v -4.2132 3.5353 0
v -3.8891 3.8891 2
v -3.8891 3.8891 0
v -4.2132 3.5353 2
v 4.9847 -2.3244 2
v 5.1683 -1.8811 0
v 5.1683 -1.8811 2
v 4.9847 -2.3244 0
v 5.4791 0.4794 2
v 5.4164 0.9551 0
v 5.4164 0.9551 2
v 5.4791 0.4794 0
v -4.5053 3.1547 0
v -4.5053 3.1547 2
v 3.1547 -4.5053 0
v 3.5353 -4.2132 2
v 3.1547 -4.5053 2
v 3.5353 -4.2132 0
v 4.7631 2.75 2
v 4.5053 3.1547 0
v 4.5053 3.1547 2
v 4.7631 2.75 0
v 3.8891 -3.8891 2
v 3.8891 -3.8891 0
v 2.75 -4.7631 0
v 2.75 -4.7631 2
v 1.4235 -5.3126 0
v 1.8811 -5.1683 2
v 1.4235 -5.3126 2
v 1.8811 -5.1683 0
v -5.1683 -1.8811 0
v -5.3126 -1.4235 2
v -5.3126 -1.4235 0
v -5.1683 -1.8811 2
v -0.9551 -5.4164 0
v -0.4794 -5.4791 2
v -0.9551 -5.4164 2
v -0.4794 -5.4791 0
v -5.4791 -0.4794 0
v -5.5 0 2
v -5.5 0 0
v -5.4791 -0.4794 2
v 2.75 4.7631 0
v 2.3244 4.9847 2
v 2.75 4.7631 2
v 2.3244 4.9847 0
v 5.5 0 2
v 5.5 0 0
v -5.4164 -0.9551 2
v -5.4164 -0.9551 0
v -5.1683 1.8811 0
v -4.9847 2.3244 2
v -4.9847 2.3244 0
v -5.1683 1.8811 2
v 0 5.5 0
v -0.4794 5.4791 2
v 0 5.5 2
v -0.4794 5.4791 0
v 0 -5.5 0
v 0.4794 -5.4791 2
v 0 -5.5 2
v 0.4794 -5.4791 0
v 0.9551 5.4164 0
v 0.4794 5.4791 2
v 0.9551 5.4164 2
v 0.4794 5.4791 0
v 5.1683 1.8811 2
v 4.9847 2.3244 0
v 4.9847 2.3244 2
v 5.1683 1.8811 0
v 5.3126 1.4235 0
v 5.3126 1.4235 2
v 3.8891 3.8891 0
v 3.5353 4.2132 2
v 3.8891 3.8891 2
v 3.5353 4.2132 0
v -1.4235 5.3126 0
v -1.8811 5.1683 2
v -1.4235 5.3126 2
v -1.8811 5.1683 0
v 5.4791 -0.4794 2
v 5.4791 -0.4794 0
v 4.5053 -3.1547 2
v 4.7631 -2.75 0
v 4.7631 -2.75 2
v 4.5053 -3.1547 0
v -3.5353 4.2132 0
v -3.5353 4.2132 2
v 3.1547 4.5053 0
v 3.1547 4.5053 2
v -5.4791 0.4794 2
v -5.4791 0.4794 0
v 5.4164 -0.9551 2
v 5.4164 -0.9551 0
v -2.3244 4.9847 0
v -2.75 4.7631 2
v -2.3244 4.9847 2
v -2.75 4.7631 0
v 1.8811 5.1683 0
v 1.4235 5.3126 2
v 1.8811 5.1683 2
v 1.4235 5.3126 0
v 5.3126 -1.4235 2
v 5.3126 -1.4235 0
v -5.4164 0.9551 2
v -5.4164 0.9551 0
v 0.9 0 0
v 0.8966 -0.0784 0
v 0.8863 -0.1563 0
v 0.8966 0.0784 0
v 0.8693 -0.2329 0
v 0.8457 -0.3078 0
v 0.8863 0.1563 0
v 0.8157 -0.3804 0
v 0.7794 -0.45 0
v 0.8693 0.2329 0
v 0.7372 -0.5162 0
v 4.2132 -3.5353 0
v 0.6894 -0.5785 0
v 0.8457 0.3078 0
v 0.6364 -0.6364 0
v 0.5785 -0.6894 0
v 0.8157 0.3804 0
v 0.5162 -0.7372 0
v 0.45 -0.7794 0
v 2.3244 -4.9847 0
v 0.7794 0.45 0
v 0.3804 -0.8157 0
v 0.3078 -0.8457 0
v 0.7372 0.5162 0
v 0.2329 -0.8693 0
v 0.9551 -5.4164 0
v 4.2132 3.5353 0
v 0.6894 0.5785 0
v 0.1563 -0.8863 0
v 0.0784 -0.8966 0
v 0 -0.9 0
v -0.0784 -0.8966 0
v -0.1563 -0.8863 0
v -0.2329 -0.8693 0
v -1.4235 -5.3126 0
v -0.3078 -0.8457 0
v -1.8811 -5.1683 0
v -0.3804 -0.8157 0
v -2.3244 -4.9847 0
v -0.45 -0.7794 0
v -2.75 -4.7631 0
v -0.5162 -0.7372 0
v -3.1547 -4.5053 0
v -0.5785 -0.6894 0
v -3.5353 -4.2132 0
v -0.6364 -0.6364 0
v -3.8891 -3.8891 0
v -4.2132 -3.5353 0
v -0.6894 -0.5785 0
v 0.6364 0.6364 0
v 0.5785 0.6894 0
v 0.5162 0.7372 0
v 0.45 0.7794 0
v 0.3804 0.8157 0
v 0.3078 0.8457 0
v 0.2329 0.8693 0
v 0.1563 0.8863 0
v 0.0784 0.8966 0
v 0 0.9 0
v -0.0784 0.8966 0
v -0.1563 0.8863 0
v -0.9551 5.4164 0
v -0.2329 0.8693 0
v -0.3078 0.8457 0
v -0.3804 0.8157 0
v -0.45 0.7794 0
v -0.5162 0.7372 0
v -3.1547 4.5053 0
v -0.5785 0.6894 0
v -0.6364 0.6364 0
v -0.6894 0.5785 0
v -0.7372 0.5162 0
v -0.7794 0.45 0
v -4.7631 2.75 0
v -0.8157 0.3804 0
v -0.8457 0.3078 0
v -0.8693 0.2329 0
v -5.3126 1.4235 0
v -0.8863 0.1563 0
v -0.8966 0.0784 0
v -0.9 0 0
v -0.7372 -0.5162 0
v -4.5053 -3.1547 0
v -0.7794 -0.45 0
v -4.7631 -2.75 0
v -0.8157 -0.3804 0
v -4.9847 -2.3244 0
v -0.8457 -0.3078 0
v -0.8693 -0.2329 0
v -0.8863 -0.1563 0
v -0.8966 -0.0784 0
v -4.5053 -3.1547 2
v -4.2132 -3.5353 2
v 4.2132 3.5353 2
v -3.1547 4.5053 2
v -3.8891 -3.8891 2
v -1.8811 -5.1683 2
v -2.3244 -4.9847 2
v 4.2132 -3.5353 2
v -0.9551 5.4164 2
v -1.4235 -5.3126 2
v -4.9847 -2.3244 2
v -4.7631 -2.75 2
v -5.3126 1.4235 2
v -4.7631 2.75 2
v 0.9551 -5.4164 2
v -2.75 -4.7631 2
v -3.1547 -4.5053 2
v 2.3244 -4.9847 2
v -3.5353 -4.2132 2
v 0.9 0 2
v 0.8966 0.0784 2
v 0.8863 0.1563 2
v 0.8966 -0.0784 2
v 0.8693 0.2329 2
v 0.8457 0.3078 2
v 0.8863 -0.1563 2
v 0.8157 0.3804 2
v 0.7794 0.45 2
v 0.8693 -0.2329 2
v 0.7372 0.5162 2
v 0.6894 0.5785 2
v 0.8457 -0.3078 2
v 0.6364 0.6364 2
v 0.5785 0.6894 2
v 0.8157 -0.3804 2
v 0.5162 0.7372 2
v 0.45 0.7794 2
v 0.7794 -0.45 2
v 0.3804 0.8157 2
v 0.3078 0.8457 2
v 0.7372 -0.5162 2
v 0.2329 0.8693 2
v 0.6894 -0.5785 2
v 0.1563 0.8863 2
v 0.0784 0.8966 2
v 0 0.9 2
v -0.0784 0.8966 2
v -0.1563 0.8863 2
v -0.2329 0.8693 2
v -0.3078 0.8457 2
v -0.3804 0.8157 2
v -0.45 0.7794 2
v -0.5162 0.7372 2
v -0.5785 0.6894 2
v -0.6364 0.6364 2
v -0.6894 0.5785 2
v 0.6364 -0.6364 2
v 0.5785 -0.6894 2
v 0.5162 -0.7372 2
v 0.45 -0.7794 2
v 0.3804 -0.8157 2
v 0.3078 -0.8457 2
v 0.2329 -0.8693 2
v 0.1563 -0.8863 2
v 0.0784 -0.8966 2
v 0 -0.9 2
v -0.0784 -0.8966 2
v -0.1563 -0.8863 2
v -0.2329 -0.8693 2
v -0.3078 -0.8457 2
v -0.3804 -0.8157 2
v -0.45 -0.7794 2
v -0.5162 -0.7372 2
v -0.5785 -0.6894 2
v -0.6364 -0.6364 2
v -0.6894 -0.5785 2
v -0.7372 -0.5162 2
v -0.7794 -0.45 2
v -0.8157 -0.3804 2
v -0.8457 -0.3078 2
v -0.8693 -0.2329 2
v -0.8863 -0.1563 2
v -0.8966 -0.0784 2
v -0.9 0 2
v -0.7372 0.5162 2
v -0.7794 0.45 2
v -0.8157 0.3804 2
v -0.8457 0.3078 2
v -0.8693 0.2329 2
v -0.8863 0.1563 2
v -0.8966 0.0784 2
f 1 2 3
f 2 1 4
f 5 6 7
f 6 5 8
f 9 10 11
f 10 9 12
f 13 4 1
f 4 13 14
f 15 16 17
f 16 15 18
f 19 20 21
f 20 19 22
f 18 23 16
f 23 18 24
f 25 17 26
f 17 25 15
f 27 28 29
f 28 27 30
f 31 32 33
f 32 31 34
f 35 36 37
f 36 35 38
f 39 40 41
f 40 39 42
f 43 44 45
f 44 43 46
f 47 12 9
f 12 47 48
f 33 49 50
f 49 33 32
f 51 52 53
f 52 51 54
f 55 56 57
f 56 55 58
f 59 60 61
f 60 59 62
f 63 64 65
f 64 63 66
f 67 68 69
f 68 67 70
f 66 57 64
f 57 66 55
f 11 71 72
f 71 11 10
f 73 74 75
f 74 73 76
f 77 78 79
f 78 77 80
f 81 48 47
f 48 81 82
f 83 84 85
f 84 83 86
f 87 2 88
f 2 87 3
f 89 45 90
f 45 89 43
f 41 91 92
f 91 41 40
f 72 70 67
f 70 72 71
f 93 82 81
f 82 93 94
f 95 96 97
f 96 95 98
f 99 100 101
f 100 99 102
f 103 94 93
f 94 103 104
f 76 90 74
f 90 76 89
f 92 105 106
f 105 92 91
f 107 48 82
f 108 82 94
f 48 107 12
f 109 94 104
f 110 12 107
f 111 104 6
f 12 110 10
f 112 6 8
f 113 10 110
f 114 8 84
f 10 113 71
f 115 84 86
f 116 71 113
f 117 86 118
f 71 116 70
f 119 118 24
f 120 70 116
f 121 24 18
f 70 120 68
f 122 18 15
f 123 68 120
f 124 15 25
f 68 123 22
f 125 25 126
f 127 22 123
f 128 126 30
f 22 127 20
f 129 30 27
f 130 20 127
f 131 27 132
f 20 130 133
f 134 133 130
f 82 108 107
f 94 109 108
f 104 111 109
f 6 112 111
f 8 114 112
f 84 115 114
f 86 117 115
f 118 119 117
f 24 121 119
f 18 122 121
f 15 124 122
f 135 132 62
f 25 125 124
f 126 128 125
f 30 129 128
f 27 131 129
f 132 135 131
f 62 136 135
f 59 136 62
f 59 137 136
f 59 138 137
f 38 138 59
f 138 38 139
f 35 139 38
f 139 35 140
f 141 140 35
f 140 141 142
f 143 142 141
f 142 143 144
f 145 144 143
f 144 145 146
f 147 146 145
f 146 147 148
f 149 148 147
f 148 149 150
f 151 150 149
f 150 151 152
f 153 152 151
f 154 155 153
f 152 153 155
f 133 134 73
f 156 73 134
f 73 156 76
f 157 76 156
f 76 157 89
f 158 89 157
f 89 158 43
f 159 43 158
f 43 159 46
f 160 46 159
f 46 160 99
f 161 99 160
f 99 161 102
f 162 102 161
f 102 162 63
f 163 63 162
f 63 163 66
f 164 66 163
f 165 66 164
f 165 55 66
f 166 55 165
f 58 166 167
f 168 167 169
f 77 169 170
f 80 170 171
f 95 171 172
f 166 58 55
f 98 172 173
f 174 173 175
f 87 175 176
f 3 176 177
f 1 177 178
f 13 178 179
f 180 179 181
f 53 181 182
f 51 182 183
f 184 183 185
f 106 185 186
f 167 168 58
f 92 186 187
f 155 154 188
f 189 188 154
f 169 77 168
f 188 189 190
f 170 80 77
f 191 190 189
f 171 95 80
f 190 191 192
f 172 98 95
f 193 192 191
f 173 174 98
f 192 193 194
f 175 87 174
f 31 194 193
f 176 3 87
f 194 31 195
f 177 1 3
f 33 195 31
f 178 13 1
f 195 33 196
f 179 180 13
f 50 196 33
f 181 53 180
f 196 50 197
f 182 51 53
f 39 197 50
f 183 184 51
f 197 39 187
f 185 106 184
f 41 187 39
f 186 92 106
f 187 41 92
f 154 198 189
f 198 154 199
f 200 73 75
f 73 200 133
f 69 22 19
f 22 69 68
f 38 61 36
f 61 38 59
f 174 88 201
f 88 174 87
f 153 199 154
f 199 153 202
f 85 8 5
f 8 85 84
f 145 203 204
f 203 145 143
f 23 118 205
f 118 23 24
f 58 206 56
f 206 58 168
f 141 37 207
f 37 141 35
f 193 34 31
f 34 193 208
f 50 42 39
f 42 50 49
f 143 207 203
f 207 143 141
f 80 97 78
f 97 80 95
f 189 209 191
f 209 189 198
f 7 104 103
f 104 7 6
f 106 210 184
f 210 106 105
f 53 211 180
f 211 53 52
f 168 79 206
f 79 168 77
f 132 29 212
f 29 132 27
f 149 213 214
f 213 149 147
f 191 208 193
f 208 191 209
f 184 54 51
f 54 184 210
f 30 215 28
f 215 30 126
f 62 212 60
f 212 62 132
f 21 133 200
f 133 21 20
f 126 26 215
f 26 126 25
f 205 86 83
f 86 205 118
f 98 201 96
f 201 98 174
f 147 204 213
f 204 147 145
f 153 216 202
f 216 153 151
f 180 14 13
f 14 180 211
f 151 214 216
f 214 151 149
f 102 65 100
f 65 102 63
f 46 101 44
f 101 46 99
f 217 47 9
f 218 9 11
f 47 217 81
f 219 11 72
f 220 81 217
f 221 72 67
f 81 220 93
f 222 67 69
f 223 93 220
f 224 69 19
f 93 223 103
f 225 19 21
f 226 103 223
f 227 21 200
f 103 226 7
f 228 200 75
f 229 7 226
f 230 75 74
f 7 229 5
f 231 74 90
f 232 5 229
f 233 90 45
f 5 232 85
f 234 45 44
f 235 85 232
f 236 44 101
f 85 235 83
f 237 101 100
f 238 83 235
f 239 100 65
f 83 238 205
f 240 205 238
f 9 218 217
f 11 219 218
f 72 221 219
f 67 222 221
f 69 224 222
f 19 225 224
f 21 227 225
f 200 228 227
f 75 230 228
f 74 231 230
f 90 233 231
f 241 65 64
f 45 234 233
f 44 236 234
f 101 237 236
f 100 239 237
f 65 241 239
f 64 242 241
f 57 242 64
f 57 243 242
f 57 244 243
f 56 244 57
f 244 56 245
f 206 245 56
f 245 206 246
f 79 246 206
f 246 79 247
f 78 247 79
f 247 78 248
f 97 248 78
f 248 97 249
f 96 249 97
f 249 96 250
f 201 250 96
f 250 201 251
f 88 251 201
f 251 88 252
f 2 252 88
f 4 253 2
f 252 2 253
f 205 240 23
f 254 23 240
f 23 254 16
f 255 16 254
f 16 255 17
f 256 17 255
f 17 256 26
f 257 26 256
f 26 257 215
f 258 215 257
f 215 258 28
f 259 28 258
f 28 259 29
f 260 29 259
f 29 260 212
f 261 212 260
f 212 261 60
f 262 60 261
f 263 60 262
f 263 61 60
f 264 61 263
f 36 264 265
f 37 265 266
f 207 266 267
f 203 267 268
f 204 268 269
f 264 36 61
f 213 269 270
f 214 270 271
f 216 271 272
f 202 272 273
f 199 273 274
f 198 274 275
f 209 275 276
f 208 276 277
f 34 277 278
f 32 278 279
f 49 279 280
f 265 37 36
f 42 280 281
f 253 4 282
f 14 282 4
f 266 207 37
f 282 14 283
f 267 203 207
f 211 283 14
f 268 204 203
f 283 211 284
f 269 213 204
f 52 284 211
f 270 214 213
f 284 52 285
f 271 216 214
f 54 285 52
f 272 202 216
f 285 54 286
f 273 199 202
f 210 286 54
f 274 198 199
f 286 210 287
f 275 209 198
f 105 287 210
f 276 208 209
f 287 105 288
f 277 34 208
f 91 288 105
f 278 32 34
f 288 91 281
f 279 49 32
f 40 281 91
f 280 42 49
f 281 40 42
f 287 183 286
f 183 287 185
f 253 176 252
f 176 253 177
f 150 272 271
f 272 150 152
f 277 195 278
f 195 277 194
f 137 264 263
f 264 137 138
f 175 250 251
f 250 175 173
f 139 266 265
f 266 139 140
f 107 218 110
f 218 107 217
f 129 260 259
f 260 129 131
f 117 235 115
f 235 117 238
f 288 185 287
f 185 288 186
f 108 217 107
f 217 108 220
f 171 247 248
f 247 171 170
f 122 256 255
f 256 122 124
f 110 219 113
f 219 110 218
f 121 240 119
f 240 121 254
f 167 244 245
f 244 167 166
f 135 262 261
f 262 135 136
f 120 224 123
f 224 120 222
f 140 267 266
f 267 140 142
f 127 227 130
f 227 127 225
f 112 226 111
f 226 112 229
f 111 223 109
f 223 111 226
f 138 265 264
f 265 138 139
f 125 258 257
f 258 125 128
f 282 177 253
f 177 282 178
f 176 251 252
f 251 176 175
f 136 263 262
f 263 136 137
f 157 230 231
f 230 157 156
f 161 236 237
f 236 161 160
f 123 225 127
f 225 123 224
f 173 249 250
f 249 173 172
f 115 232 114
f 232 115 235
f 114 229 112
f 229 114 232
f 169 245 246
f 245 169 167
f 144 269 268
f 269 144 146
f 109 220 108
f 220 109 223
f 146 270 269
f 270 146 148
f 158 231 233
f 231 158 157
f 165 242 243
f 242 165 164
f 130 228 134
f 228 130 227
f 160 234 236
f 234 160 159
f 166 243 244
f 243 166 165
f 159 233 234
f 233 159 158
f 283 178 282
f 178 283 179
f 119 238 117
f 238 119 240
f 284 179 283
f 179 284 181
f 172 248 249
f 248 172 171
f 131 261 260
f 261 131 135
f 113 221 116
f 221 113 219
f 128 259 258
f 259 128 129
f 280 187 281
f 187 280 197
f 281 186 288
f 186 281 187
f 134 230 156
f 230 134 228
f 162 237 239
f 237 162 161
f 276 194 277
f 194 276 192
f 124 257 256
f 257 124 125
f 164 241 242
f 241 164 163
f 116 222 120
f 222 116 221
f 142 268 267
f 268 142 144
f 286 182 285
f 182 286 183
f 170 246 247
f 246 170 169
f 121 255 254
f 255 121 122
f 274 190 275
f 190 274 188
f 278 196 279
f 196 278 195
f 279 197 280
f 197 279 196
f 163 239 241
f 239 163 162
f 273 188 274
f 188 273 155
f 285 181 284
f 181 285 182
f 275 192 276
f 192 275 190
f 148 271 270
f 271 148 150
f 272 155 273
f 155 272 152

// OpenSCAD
// file: woli_config.scad
// ============================================================
// WOLI V1.1 AUDITED FINAL — MASTER PARAMETERS
// Units: mm
// ============================================================

$fn = 72;

// ---------- GLOBAL ----------
fit_clearance = 0.40;
wall = 3.0;
floor_t = 5.0;
cover_t = 2.8;
shell_r = 10.0;

m3_clear = 3.4;
m3_pilot_d = 2.8;
m3_pilot_depth = 4.2;

tie_slot_w = 3.8;
tie_slot_l = 18;

// ---------- BODY ----------
body_w = 170;
body_l = 90;
chassis_h = 31;
top_h = 34;

top_upper_w = 162;
top_upper_l = 80;
top_upper_r = 9;

// ---------- N20 DRIVE ----------
wheel_d = 43;
wheel_w = 17.5;

n20_x = 12;
n20_y = 33;
n20_z = 10;

n20_bracket_x = 25;
n20_bracket_y = 8.5;
n20_bracket_z = 11.5;
n20_bracket_hole_cc = 17;      // approx; slots absorb error

wheel_axis_ground_z = wheel_d/2; // reference only; actual chassis ground plane requires hardware check
wheel_opening_l = 25;            // side wheel cutout depth (Y), mm
motor_y = -body_l/2 + body_l/3;  // wheel center: 1/3 body depth in from front (-Y)
motor_slot_len = 8;
motor_bracket_zone_x = body_w/2 - 18;

// ---------- BALL CASTER ----------
caster_w = 22;
caster_l = 17;
caster_h = 15;
caster_ball_d_visual_ref = 11.5; // photo-only reference; not used for fit
caster_dock_y = body_l/2 - 21;

caster_body_clear = 0.7;
caster_retainer_t = 3.0;
caster_retainer_screw_cc = 27;

caster_mount_x = 15;
caster_mount_y = 12;
caster_floor_open = 18.5;

// ---------- MAIN PCB ----------
pcb_w = 50;
pcb_l = 70;
pcb_stack_h = 15;

pcb_tray_w = 56;
pcb_tray_l = 76;
pcb_mount_cc_x = 44;
pcb_mount_cc_y = 64;

// ---------- MG90S ----------
servo_a = 32.4;
servo_b = 32.5;
servo_c = 12;
servo_fit = 0.7;

// ---------- LIMIT SWITCH ----------
limit_w = 21;
limit_l = 23;
limit_h = 6;

// ---------- VL53L0X ----------
tof_w = 10.7;
tof_l = 25;
tof_h = 11.5;
tof_rail_clear = 0.7;

tof_bezel_w = 34;
tof_bezel_h = 19;

// ---------- PHONE HOLDER / NECK ----------
phone_ball_d = 18.0;            // physical socket fit still required
neck_h = 30;
neck_base_w = 54;
neck_base_l = 42;
neck_base_h = 5;
neck_hole_x = 38;
neck_hole_y = 26;

neck_recess_w = 62;
neck_recess_l = 50;
neck_recess_d = 1.2;

neck_pilot_d = 2.8;
neck_pilot_depth = 7.0;

// reference phone clearance envelope only
phone_ref_w = 165;
phone_ref_h = 82;
phone_ref_t = 12;

// ---------- KLIFE PD-Q2 BATTERY ----------
battery_w = 68;
battery_l = 143;
battery_h = 11;
battery_mass_g = 205;

battery_fit_clear = 0.8;
battery_tray_w = 84;
battery_tray_l = 146;
battery_tray_t = 2.4;
battery_rail_t = 2.5;
battery_rail_h = 5.5;
battery_center_y = -18;

battery_tray_mount_x = 39;
battery_tray_mount_y = 55;

// ---------- UPPER ELECTRONICS DECK ----------
bridge_w = 122;
bridge_l = 94;
bridge_t = 3.0;
bridge_leg_h = 20;
bridge_leg_x = 56;
bridge_leg_y = 36;

module_boss_h = 4.5;
module_boss_d = 8.0;
module_pilot_d = 2.8;

pcb_deck_cx = -25;
pcb_deck_cy = 0;

tb_deck_cx = 34;
tb_deck_cy = 17;

usbc_deck_cx = 36;
usbc_deck_cy = -24;

// ---------- TB6612FNG HW-166 ----------
tb6612_w = 26;
tb6612_l = 26;
tb6612_clear = 0.6;

// total installed height is intentionally not hard-coded

// ---------- USB-C BREAKOUT ----------
usbc_board_w = 12;
usbc_board_l = 15;
usbc_connector_h = 4.2;
usbc_clear = 0.6;

// ---------- TOP COVER INTERFACE ----------
cover_skirt_depth = 4.0;
cover_skirt_clear = 0.8;
cover_skirt_t = 2.5;

cover_side_screw_y = 55 * body_l / 190;
cover_side_screw_z = -2.5;

rear_service_w = 42;
rear_service_h = 14;
rear_hatch_screw_x = 19;
rear_hatch_center_z = 10;

// ---------- CABLE MANAGEMENT ----------
cable_bridge_w = 24;
cable_bridge_l = 14;
cable_bridge_h = 8;
cable_bridge_channel = 8;

// ---------- SERVO LOCK FRAMEWORK ----------
lock_angle_deg = 90;
unlock_angle_deg = 10;

lock_plate_d = 28;
lock_arm_w = 10;
lock_arm_t = 4.0;
lock_reach = 22;
lock_tip_d = 10;

horn_center_clear_d = 7.0;
horn_slot_d = 2.4;              // physical stock-horn check required
horn_slot_len = 8.0;
horn_slot_radius = 8.0;

lock_pad_t = 2.0;
lock_pad_d = 11.0;
// file: woli_lib.scad
include <woli_config.scad>;

module rr2d(w,l,r){
    offset(r=r) square([w-2*r,l-2*r], center=true);
}

module rplate(w,l,h,r){
    linear_extrude(height=h) rr2d(w,l,r);
}

module rshell(w,l,h,r,t,bottom){
    difference(){
        rplate(w,l,h,r);
        translate([0,0,bottom])
            rplate(w-2*t,l-2*t,h,r-t);
    }
}

module slot2d(len,d){
    hull(){
        translate([-len/2,0]) circle(d=d);
        translate([ len/2,0]) circle(d=d);
    }
}

module slot3d(len,d,h){
    linear_extrude(height=h) slot2d(len,d);
}

module tie_slot(h=5){
    rplate(tie_slot_w,tie_slot_l,h,1.2);
}

module body_screw_pattern(h=20){
    for(x=[-screw_x,screw_x])
        for(y=[-screw_y,screw_y])
            translate([x,y,-1])
                cylinder(h=h,d=m3_clear);
}

module body_bosses(h=20){
    for(x=[-screw_x,screw_x])
        for(y=[-screw_y,screw_y])
            translate([x,y,0])
                cylinder(h=h,d=m3_boss_d);
}


// Closed-top shell for removable upper cover.
// Leaves the underside open and preserves a roof thickness.
module top_shell(w,l,h,r,t){
    difference(){
        rplate(w,l,h,r);
        translate([0,0,-0.1])
            rplate(w-2*t,l-2*t,h-t+0.1,r-t);
    }
}


// Tapered rounded solid built from two rounded plates.
// Useful for product-like enclosure shoulders.
module tapered_rounded_solid(w0,l0,w1,l1,h,r0,r1){
    hull(){
        rplate(w0,l0,0.8,r0);
        translate([0,0,h-0.8])
            rplate(w1,l1,0.8,r1);
    }
}

// Open-bottom tapered cover with closed roof.
module tapered_top_shell(w0,l0,w1,l1,h,r0,r1,t){
    difference(){
        tapered_rounded_solid(w0,l0,w1,l1,h,r0,r1);
        translate([0,0,-0.1])
            tapered_rounded_solid(
                w0-2*t,l0-2*t,
                w1-2*t,l1-2*t,
                h-t+0.1,
                max(r0-t,1),max(r1-t,1)
            );
    }
}
// main file
include <woli_lib.scad>;

// ============================================================
// 24 LOCK CONTACT PAD V0.7
// Optional replaceable contact surface.
// Can be printed in PLA for prototype or softer material later.
// Attach with small adhesive/fastener after real contact point is verified.
// ============================================================

difference(){
    cylinder(h=lock_pad_t,d=lock_pad_d);

    // tiny center pilot hole; enlarge only if hardware requires screw
    translate([0,0,-0.1])
        cylinder(h=lock_pad_t+0.3,d=1.8);
}
